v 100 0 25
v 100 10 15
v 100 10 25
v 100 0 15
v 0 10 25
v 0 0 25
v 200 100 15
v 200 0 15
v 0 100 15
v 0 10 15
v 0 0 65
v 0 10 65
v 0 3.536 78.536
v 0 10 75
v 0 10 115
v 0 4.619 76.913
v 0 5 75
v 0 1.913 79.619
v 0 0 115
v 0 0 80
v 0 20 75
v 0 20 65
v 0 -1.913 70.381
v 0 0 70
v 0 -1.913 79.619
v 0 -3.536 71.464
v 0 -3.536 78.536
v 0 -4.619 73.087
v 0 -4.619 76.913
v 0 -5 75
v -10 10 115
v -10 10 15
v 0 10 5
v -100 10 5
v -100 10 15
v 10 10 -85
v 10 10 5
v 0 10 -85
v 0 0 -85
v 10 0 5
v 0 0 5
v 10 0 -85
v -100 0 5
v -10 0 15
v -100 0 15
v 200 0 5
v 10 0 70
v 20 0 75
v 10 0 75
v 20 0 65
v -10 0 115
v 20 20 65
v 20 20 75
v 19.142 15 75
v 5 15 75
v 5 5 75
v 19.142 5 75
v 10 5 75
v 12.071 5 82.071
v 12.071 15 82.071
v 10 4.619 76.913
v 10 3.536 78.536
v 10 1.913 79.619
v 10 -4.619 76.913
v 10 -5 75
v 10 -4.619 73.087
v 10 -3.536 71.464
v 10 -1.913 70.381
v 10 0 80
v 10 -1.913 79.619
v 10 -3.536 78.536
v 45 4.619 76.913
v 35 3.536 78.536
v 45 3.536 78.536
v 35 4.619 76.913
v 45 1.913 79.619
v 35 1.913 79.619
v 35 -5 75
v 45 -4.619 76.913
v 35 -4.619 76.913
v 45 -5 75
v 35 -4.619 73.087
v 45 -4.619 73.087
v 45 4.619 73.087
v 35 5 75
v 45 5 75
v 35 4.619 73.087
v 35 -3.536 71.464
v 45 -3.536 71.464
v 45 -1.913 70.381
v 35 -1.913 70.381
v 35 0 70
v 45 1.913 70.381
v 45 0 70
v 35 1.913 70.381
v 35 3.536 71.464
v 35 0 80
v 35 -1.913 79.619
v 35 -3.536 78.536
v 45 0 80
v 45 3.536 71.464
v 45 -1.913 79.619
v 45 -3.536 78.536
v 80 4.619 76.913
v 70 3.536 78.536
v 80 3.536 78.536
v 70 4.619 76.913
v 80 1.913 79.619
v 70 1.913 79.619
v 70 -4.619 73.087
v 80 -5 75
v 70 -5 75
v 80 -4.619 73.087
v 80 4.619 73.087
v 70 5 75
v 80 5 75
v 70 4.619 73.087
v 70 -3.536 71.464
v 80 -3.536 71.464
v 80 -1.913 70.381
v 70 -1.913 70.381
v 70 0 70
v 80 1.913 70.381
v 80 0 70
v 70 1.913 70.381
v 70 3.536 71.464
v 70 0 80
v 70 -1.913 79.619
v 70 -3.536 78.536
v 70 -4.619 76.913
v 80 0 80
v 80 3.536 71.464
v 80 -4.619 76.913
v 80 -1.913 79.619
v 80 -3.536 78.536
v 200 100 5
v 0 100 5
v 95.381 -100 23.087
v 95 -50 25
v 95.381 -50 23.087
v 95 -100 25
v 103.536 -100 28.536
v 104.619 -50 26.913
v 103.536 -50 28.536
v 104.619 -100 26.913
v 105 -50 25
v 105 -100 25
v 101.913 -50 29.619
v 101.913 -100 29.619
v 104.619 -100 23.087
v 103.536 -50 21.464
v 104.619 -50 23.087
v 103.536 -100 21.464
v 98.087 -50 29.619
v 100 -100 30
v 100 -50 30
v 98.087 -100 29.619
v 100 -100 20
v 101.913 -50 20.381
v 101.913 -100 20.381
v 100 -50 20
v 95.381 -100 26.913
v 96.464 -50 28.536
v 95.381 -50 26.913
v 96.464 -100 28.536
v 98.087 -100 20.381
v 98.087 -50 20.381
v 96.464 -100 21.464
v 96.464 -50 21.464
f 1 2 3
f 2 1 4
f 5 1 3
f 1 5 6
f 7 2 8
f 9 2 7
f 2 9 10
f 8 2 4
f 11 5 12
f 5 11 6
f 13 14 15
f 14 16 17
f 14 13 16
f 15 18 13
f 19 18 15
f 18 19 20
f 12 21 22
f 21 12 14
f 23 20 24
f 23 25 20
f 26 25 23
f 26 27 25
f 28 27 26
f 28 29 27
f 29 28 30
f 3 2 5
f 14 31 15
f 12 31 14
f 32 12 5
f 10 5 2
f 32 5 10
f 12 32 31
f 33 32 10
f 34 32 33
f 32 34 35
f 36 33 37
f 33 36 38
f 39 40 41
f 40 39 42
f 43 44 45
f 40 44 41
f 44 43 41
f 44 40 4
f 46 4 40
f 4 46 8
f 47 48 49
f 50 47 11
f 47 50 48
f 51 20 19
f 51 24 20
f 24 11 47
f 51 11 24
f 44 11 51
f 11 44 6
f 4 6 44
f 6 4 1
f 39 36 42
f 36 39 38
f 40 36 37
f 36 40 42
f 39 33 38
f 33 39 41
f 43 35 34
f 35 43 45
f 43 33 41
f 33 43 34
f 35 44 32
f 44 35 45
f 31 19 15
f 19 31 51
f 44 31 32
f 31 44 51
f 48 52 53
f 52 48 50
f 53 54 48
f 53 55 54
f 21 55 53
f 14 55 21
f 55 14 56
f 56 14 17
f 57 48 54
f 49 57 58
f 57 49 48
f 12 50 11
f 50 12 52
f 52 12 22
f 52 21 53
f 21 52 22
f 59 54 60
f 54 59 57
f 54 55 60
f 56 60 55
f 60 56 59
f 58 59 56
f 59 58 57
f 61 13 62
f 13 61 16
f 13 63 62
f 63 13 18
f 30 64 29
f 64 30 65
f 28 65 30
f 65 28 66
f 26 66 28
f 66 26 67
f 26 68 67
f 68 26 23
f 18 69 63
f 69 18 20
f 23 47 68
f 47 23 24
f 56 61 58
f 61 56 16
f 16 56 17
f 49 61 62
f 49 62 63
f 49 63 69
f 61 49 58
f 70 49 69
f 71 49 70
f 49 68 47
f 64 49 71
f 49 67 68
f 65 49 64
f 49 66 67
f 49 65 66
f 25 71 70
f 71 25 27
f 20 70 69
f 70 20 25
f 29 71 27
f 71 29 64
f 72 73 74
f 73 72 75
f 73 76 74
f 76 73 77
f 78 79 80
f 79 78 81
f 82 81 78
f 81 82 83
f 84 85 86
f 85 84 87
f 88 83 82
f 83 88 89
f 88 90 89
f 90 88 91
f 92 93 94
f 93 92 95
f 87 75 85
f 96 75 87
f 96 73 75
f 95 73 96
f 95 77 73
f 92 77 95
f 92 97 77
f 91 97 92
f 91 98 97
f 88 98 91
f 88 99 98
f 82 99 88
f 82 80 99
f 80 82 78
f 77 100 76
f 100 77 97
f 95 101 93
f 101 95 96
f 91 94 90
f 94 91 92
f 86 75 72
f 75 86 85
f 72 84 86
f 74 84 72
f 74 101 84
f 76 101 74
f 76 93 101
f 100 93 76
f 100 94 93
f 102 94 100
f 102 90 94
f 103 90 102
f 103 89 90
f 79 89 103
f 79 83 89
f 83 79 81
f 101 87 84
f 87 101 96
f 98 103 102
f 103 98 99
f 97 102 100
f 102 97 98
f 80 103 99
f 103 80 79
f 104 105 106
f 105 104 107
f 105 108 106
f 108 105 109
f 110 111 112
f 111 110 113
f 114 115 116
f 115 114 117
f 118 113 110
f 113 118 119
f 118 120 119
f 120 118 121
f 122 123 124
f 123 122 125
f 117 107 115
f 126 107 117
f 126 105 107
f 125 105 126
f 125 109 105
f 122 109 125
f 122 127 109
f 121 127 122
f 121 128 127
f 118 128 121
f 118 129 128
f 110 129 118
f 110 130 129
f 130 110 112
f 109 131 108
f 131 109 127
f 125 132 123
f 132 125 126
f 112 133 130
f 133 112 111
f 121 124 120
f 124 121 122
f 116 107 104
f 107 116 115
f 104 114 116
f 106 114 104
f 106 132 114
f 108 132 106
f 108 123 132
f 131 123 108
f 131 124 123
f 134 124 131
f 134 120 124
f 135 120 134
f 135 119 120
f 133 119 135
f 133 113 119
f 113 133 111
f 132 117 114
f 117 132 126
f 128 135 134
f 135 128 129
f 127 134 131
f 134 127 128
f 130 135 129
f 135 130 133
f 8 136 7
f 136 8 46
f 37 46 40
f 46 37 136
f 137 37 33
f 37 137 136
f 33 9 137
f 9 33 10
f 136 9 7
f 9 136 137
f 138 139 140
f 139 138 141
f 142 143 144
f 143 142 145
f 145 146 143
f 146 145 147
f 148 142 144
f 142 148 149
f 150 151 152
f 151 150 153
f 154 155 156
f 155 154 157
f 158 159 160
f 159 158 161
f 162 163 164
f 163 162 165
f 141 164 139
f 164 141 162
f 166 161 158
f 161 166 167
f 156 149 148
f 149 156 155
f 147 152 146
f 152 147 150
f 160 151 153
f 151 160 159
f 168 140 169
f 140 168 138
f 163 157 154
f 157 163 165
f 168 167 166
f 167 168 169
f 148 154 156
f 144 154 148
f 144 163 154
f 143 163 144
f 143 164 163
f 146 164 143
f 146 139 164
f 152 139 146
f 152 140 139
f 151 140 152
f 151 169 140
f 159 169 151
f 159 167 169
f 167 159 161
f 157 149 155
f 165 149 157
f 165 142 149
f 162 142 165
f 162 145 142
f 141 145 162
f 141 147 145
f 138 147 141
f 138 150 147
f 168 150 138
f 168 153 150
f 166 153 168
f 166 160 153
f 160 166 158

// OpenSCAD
// Create the base of the solar generator
translate([0, 0, 5]) {
  cube([200, 100, 10]);
}

// Create the solar panels of the solar generator
translate([0, 0, 15]) {
  for (i = [0:3]) {
    rotate([0, i * 90, 0]) {
      cube([100, 10, 10]);
    }
  }
}

// Create the handle of the solar generator
translate([100, -50, 25]) {
  rotate([90, 0, 0]) {
    cylinder(r=5, h=50);
  }
}

// Create the control panel of the solar generator
translate([0, 0, 65]) {
  cube([20, 20, 10]);
  translate([5, 5, 10]) {
    rotate([0, 45, 0]) {
      cube([10, 10, 10]);
    }
  }
}

// Create the outlets of the solar generator
translate([0, 0, 75]) {
  for (i = [0:2]) {
    translate([i * 35, 0, 0]) {
      rotate([0, 90, 0]) {
        cylinder(r=5, h=10);
      }
    }
  }
}
